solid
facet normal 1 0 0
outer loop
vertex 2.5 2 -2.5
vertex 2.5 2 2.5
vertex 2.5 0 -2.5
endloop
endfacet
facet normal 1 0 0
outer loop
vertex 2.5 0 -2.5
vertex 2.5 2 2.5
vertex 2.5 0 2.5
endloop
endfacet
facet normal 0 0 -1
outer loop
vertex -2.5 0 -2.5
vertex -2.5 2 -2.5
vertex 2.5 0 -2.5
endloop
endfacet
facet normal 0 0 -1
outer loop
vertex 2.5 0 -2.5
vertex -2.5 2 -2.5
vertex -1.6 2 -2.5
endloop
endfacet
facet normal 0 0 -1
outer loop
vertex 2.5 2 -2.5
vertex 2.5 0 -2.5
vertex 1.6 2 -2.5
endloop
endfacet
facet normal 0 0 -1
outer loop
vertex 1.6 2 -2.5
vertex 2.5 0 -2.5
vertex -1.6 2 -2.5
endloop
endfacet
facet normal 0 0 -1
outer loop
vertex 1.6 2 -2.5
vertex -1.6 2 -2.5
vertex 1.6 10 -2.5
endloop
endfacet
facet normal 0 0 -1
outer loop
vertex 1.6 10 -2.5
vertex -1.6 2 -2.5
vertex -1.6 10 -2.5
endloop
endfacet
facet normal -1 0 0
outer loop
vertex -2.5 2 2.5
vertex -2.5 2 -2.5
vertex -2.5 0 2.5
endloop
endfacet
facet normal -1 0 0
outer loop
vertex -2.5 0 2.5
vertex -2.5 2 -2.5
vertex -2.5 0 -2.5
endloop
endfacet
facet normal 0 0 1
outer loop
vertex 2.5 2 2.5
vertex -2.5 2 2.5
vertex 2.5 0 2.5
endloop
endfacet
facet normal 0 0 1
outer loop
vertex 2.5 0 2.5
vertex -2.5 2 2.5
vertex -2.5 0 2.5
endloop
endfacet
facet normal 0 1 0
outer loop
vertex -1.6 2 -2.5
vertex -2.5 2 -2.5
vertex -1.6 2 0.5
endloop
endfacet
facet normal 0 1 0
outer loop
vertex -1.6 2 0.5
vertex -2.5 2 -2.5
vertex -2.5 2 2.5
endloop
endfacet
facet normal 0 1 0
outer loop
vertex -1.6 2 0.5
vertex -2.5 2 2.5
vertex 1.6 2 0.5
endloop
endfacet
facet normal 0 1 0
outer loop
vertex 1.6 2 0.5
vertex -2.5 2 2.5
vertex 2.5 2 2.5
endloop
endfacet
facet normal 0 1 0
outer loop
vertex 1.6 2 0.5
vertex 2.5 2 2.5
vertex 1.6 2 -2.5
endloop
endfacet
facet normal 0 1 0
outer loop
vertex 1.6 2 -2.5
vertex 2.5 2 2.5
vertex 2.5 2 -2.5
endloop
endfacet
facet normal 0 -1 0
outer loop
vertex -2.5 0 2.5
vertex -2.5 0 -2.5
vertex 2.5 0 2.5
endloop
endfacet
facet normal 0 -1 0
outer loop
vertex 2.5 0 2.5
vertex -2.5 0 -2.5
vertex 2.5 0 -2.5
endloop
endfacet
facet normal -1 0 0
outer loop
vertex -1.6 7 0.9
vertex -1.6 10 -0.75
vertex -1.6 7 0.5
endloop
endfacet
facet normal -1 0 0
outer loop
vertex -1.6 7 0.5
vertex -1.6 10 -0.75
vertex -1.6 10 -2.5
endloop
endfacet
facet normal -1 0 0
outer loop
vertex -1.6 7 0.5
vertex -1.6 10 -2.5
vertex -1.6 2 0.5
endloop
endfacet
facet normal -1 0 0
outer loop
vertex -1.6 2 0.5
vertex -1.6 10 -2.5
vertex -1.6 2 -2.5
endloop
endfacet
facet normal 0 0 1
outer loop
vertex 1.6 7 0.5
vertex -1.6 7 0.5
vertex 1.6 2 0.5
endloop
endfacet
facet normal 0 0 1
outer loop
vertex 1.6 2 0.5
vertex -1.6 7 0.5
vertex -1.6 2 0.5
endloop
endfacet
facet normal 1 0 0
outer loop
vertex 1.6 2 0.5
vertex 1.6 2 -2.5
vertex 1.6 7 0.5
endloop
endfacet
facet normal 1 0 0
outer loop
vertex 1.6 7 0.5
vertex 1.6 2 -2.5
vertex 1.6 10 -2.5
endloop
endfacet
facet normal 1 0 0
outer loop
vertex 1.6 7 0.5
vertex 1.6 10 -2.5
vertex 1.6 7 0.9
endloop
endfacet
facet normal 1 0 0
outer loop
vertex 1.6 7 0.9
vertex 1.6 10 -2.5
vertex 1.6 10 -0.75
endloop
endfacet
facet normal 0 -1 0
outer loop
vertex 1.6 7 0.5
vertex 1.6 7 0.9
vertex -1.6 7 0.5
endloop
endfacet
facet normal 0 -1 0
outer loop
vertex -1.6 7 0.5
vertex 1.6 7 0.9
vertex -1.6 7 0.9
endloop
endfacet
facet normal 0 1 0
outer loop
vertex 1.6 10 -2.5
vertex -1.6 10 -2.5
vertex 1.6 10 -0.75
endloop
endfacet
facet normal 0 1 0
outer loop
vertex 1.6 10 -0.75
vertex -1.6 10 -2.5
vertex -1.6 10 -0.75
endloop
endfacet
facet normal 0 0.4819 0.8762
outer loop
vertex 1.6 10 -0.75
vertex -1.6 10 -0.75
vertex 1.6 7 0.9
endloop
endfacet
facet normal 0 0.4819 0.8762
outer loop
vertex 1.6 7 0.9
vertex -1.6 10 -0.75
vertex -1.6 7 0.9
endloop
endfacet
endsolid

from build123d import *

# Parameters (mm, degrees)
SKETCH1_W           = 5
SKETCH1_H           = 5
BOSS_EXTRUDE1_DEPTH = 2
SKETCH2_W           = 3.2
SKETCH2_H           = 3
BOSS_EXTRUDE2_DEPTH = 5
SKETCH3_W           = 3.2
SKETCH3_H           = 3.4
BOSS_EXTRUDE3_DEPTH = 3
CUT_EXTRUDE1_DEPTH  = 12.093241186


with BuildPart() as part:
    # Sketch1 → Boss-Extrude1 (new body)
    with BuildSketch(Plane(origin=(0, 0, 0), x_dir=(1, 0, 0), z_dir=(0, 1, 0))):
        Rectangle(SKETCH1_W, SKETCH1_H)
    extrude(amount=BOSS_EXTRUDE1_DEPTH)

    # Sketch2 → Boss-Extrude2 (add)
    with BuildSketch(Plane(origin=(0, 2, 0), x_dir=(1, 0, 0), z_dir=(0, 1, 0))):
        with Locations((0, 1)):
            Rectangle(SKETCH2_W, SKETCH2_H)
    extrude(amount=BOSS_EXTRUDE2_DEPTH)

    # Sketch3 → Boss-Extrude3 (add)
    with BuildSketch(Plane(origin=(0, 7, 0), x_dir=(1, 0, 0), z_dir=(0, 1, 0))):
        with Locations((0, 0.8)):
            Rectangle(SKETCH3_W, SKETCH3_H)
    extrude(amount=BOSS_EXTRUDE3_DEPTH)

    # Sketch4 → Cut-Extrude1 (cut, through all)
    with BuildSketch(Plane(origin=(1.6, 0, 0), x_dir=(0, 0, -1), z_dir=(1, 0, 0))):
        Polygon((-0.9, 7), (0.75, 10), (-0.9, 10), align=None)
    extrude(amount=-CUT_EXTRUDE1_DEPTH, mode=Mode.SUBTRACT)


solid = part.part
